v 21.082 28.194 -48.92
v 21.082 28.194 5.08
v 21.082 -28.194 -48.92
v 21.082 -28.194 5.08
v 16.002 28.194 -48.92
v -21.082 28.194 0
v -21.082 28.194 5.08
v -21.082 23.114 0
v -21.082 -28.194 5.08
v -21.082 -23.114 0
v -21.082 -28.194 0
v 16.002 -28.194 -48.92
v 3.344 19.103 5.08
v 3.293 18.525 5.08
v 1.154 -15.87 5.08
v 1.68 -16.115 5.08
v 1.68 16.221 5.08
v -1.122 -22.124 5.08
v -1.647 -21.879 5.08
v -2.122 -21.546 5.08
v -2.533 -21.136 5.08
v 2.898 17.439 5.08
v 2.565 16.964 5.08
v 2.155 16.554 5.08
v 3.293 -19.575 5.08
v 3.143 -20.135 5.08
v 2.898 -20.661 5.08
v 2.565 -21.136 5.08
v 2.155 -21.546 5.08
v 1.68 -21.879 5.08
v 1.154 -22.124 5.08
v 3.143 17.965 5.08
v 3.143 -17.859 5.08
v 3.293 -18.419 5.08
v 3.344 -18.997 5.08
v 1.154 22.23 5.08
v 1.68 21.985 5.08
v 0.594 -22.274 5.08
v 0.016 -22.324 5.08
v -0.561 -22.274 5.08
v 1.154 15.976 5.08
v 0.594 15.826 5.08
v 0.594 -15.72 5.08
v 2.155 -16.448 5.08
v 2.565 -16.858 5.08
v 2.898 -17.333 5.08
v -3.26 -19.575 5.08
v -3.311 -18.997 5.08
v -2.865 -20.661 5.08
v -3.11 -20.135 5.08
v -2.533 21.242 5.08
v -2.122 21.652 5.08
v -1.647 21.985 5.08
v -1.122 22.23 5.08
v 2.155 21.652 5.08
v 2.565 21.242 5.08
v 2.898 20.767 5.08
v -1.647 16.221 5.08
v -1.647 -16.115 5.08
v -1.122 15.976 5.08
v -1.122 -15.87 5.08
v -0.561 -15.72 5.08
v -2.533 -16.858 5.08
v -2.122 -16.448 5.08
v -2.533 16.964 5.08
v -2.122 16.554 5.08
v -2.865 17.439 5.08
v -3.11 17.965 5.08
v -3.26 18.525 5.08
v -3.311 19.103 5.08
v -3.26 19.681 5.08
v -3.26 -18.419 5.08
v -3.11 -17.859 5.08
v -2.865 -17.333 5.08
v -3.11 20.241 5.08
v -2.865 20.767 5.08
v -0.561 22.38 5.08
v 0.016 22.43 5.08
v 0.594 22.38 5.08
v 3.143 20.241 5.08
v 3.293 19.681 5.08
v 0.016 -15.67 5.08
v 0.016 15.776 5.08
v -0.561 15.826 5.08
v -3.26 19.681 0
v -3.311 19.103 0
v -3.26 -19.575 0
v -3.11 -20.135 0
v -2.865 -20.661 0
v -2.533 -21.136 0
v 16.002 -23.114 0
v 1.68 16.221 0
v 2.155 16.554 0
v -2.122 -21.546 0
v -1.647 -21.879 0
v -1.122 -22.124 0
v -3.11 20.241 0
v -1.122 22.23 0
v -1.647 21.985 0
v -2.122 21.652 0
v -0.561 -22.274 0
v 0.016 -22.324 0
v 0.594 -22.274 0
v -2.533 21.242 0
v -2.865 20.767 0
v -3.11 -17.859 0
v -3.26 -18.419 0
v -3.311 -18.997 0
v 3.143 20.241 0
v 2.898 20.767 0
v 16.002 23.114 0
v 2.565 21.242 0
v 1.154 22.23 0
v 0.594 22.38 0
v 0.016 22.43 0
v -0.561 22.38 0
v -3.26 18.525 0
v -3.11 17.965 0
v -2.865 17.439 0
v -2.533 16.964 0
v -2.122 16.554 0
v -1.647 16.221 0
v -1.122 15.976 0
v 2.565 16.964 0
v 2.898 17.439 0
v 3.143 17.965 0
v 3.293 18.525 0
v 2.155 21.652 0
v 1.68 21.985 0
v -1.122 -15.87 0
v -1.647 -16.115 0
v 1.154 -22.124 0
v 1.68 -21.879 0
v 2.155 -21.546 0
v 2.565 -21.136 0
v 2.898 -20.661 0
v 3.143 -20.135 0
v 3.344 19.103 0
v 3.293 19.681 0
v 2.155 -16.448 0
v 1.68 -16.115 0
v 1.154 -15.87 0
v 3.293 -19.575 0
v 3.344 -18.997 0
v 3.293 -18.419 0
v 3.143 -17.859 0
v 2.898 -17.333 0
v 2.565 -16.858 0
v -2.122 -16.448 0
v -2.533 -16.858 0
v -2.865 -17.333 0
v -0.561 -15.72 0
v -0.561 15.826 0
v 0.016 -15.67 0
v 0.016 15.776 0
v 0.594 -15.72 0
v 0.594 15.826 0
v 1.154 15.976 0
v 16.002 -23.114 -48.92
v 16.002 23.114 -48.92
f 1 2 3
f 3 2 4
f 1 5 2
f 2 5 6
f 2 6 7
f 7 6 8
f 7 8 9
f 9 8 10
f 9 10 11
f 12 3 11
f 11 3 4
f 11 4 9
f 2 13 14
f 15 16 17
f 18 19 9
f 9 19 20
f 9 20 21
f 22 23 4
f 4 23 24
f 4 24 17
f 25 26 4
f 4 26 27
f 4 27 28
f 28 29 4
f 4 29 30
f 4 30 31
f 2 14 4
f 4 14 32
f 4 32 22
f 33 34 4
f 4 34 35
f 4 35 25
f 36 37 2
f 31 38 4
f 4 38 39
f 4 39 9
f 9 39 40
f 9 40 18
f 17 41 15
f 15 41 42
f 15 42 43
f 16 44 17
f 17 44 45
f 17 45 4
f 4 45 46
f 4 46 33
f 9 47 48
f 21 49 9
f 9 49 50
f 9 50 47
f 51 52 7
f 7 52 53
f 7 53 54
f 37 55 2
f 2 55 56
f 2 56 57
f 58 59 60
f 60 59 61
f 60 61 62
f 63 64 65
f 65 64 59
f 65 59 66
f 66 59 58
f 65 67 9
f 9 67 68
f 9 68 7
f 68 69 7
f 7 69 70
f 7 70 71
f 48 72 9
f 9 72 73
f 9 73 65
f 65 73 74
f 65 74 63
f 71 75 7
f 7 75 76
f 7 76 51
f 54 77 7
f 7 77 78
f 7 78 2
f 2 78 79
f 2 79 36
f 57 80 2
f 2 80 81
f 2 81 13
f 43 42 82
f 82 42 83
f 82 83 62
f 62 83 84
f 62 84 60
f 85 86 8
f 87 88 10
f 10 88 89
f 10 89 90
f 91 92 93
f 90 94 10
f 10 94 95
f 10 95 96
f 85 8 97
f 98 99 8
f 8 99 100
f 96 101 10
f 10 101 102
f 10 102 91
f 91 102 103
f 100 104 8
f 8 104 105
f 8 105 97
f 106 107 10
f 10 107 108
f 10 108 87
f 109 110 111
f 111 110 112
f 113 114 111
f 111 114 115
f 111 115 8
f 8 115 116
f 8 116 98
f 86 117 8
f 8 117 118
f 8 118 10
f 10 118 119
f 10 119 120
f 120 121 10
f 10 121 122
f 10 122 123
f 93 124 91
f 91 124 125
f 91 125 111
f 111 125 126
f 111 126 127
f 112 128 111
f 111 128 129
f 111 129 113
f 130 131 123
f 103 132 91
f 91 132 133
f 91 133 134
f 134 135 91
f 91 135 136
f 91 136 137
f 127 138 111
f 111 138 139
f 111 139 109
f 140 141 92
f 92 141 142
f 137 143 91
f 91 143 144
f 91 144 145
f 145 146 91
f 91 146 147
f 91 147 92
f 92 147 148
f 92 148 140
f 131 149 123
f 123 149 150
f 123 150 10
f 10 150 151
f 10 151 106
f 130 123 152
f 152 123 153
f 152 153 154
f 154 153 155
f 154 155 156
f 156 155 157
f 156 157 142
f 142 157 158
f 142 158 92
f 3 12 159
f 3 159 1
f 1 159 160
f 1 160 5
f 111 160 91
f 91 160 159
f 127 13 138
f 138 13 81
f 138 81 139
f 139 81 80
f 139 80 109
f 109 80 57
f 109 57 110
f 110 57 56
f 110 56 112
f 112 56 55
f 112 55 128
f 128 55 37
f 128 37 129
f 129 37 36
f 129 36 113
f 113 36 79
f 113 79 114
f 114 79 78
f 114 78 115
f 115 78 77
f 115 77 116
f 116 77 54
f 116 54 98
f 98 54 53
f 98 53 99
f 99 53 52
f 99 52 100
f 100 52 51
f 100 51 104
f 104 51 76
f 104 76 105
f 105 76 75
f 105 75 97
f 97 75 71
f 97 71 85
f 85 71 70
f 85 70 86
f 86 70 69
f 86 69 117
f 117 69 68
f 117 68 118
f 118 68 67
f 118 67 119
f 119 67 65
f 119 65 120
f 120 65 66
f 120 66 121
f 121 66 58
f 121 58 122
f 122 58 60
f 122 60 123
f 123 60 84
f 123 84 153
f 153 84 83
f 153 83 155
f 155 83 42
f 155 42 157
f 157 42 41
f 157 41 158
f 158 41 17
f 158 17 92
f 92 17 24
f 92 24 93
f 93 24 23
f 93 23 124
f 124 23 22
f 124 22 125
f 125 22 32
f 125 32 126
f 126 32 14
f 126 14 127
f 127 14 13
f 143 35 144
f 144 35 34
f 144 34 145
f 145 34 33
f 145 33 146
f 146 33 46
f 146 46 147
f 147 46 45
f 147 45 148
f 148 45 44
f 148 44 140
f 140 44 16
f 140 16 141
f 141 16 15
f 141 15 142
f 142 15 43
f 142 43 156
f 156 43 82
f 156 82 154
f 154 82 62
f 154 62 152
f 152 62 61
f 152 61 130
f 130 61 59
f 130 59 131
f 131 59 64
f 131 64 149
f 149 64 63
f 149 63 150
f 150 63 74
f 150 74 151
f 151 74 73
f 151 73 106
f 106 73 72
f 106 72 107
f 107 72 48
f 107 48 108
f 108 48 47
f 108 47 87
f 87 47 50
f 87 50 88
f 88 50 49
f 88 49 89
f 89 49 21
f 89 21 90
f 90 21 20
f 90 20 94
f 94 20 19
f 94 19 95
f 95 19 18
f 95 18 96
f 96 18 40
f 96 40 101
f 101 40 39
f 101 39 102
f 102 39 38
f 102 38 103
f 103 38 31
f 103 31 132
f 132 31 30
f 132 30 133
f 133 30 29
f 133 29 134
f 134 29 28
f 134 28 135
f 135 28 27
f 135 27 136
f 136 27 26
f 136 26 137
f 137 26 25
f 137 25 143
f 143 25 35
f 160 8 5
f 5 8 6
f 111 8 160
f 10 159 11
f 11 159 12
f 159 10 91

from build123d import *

# Parameters (mm, degrees)
SKETCH1_W           = 42.164
SKETCH1_H           = 56.388
BOSS_EXTRUDE1_DEPTH = 5.08
SKETCH2_W           = 54
SKETCH2_H           = 56.388
BOSS_EXTRUDE2_DEPTH = 5.08
SKETCH3_R           = 3.3274
CUT_EXTRUDE1_DEPTH  = 5.08
BOSS_EXTRUDE3_DEPTH = 5.08


with BuildPart() as part:
    # Sketch1 → Boss-Extrude1 (new body)
    with BuildSketch(Plane.XY):
        Rectangle(SKETCH1_W, SKETCH1_H)
    extrude(amount=BOSS_EXTRUDE1_DEPTH)

    # Sketch2 → Boss-Extrude2 (add)
    with BuildSketch(Plane(origin=(21.082, 0, 0), x_dir=(0, 0, -1), z_dir=(1, 0, 0))):
        with Locations((21.92, 0)):
            Rectangle(SKETCH2_W, SKETCH2_H)
    extrude(amount=-BOSS_EXTRUDE2_DEPTH)

    # Sketch3 → Cut-Extrude1 (cut)
    with BuildSketch(Plane.XY.offset(5.08)):
        with Locations((0.016403531, 19.102903585)):
            Circle(SKETCH3_R)
        with Locations((0.016403531, -18.997096415)):
            Circle(SKETCH3_R)
    extrude(amount=-CUT_EXTRUDE1_DEPTH, mode=Mode.SUBTRACT)

    # Sketch4 → Boss-Extrude3 (add)
    with BuildSketch(Plane(origin=(0, 28.194, 0), x_dir=(1, 0, 0), z_dir=(0, 1, 0))):
        Polygon((16.002, 48.92), (-21.082, 0), (16.002, 0), align=None)
    boss_extrude3 = extrude(amount=-BOSS_EXTRUDE3_DEPTH)

    # Mirror1: Boss-Extrude3 across plane
    add(boss_extrude3.mirror(Plane(origin=(0, 0, 0), x_dir=(0, 0, 1), z_dir=(0, -1, 0))))


solid = part.part
